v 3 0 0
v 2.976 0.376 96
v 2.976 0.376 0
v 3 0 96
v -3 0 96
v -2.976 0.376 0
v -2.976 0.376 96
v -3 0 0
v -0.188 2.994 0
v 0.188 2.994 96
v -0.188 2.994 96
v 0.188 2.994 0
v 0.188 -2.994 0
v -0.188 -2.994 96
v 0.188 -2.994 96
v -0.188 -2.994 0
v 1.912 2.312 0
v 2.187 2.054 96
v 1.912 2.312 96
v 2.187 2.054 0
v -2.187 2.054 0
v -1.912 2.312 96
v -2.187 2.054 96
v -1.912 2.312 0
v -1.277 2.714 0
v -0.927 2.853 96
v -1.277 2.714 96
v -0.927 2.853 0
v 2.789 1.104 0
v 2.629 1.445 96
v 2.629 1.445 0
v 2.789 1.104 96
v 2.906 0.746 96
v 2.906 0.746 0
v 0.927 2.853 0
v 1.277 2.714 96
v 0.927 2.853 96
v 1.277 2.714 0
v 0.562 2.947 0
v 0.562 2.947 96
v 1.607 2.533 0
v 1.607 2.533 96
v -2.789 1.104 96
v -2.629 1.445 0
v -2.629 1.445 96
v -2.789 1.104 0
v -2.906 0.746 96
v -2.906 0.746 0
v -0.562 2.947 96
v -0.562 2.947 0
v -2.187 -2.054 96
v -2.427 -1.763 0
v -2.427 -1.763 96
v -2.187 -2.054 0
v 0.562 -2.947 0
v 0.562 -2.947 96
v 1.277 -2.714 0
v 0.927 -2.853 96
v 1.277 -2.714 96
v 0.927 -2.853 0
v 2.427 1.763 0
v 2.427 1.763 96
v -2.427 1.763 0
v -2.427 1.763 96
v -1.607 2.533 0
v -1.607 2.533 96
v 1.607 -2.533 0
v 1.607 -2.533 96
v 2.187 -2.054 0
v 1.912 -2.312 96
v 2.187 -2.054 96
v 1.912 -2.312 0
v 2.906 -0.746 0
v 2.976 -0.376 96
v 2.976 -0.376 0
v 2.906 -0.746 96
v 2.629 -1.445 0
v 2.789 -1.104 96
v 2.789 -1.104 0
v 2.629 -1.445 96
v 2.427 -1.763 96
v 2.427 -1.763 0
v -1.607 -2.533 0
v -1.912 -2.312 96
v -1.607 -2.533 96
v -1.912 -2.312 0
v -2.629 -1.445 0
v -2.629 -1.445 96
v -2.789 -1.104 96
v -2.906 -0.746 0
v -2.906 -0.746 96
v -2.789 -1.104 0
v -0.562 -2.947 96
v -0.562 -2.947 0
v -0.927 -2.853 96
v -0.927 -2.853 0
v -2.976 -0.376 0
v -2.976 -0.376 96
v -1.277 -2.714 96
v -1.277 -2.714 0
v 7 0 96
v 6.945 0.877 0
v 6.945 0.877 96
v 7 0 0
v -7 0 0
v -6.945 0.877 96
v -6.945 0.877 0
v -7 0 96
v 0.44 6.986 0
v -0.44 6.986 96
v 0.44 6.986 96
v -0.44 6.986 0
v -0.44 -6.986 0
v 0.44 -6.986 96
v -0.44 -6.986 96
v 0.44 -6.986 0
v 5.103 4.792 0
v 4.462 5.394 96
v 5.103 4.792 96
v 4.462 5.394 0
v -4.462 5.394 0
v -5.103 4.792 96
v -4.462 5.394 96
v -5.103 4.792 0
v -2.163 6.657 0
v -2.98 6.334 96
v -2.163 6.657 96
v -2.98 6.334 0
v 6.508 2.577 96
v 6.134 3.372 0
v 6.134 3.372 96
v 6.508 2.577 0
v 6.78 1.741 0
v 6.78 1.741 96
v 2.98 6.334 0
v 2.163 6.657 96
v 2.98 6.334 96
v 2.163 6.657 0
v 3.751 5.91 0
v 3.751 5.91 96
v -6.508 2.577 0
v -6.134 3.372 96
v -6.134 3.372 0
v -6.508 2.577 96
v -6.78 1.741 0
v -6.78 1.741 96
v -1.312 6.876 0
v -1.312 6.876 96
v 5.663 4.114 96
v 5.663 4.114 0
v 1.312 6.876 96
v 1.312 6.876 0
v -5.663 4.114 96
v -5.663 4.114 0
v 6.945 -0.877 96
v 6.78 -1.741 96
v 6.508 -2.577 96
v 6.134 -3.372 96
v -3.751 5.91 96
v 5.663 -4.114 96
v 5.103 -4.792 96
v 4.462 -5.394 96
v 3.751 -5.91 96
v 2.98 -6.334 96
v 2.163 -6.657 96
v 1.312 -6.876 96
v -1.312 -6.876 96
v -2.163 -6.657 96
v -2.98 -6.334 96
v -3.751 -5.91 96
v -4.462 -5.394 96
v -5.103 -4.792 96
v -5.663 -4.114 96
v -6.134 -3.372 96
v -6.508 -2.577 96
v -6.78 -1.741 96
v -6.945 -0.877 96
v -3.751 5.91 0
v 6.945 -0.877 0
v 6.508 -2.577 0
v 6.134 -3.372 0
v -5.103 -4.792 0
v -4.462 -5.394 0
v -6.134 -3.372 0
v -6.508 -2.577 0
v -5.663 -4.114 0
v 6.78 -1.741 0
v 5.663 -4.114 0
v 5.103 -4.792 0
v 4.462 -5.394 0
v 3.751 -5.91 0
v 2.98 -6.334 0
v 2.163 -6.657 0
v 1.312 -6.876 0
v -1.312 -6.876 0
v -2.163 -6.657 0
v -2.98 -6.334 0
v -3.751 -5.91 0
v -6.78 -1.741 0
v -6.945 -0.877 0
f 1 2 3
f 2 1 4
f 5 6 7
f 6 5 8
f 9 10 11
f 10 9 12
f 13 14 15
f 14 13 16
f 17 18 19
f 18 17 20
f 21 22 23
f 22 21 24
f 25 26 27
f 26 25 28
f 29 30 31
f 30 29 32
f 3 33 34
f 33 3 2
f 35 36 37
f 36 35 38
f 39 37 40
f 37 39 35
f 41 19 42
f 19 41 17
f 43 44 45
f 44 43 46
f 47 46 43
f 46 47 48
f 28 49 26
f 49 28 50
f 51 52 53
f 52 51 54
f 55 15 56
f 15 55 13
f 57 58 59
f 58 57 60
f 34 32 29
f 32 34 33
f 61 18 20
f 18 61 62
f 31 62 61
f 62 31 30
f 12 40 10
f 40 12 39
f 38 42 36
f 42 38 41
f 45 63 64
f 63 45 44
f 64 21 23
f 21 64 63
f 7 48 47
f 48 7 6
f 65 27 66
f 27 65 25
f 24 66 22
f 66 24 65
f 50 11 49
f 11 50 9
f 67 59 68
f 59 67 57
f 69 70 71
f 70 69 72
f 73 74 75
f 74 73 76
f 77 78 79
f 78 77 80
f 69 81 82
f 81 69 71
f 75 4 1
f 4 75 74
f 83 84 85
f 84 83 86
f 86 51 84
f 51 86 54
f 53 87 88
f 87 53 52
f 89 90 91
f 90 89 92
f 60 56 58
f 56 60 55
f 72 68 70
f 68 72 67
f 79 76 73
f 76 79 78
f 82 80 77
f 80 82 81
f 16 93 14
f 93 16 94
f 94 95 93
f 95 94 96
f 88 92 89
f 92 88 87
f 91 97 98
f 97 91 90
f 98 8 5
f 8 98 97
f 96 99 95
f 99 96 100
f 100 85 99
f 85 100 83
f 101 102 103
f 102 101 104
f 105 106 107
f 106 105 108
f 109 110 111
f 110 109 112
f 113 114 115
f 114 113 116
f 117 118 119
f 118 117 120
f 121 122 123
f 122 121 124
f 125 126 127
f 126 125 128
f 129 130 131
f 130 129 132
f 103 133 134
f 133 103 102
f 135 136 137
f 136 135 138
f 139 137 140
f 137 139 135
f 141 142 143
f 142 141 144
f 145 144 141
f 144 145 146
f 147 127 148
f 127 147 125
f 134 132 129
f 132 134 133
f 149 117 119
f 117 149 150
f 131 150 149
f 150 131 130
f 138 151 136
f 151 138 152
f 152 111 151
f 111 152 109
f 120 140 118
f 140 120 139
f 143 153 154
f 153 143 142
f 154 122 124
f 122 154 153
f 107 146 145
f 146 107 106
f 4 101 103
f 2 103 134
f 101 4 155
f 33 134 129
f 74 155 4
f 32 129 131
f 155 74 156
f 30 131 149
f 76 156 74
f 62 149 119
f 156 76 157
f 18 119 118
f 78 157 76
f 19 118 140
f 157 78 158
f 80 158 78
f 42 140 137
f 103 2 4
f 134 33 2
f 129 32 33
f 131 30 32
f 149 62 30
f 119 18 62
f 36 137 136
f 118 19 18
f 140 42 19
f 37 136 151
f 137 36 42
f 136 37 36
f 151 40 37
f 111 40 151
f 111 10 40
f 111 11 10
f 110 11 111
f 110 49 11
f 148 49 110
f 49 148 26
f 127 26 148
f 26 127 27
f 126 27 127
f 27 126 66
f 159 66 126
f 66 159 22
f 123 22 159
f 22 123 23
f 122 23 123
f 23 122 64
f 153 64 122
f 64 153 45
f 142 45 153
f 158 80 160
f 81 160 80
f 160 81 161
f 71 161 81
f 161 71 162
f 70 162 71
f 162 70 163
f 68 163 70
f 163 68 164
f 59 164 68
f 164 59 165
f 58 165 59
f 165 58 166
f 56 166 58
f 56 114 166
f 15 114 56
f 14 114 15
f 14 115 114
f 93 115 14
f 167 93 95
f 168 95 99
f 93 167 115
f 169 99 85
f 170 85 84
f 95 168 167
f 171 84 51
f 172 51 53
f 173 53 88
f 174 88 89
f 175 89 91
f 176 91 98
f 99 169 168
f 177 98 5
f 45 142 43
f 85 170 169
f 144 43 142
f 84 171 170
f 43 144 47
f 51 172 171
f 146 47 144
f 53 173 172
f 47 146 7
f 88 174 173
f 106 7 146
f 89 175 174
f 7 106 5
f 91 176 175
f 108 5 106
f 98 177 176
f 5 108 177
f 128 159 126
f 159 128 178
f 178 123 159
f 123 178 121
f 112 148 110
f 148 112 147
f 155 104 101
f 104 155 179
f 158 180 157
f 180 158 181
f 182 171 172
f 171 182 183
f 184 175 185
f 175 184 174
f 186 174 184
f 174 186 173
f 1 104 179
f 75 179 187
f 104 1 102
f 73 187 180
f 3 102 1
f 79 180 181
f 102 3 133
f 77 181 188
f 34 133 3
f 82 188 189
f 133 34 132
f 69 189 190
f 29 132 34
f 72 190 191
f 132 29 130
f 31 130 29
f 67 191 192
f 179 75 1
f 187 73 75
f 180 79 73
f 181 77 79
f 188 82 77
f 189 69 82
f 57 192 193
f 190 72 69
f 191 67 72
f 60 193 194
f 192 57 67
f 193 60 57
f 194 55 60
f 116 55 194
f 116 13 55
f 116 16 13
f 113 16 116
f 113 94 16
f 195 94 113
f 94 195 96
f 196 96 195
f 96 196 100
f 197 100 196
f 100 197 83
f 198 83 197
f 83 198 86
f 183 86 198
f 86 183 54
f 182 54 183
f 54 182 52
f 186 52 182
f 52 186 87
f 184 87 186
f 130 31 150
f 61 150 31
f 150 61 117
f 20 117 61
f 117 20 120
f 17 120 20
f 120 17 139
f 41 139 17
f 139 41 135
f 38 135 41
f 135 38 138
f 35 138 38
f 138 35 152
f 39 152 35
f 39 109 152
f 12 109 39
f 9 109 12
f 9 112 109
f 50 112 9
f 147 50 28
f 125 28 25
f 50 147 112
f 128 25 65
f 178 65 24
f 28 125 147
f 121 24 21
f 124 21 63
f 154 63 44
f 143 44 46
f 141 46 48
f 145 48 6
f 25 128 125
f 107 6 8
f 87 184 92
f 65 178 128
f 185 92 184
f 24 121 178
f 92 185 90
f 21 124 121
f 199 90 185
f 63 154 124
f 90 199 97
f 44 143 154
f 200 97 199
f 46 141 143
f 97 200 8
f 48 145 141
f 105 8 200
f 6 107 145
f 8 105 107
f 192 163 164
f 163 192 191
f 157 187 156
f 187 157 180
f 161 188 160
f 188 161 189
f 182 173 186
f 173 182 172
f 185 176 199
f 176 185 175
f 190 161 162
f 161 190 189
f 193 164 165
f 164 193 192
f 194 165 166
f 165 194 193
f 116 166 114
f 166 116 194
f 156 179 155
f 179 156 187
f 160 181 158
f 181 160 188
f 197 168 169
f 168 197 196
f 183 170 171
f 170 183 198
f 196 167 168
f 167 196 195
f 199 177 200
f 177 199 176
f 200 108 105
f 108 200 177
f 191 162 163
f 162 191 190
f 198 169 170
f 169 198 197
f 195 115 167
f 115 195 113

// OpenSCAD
$fn = 50;


difference() {
	union() {
		cylinder(h = 96, r = 7.0000000000);
	}
	union() {
		translate(v = [0.0000000000, 0.0000000000, -100.0000000000]) {
			cylinder(h = 200, r = 3.0000000000);
		}
		cylinder(h = 96, r = 1.5000000000);
		cylinder(h = 96, r = 1.5000000000);
		cylinder(h = 96, r = 1.5000000000);
	}
}
